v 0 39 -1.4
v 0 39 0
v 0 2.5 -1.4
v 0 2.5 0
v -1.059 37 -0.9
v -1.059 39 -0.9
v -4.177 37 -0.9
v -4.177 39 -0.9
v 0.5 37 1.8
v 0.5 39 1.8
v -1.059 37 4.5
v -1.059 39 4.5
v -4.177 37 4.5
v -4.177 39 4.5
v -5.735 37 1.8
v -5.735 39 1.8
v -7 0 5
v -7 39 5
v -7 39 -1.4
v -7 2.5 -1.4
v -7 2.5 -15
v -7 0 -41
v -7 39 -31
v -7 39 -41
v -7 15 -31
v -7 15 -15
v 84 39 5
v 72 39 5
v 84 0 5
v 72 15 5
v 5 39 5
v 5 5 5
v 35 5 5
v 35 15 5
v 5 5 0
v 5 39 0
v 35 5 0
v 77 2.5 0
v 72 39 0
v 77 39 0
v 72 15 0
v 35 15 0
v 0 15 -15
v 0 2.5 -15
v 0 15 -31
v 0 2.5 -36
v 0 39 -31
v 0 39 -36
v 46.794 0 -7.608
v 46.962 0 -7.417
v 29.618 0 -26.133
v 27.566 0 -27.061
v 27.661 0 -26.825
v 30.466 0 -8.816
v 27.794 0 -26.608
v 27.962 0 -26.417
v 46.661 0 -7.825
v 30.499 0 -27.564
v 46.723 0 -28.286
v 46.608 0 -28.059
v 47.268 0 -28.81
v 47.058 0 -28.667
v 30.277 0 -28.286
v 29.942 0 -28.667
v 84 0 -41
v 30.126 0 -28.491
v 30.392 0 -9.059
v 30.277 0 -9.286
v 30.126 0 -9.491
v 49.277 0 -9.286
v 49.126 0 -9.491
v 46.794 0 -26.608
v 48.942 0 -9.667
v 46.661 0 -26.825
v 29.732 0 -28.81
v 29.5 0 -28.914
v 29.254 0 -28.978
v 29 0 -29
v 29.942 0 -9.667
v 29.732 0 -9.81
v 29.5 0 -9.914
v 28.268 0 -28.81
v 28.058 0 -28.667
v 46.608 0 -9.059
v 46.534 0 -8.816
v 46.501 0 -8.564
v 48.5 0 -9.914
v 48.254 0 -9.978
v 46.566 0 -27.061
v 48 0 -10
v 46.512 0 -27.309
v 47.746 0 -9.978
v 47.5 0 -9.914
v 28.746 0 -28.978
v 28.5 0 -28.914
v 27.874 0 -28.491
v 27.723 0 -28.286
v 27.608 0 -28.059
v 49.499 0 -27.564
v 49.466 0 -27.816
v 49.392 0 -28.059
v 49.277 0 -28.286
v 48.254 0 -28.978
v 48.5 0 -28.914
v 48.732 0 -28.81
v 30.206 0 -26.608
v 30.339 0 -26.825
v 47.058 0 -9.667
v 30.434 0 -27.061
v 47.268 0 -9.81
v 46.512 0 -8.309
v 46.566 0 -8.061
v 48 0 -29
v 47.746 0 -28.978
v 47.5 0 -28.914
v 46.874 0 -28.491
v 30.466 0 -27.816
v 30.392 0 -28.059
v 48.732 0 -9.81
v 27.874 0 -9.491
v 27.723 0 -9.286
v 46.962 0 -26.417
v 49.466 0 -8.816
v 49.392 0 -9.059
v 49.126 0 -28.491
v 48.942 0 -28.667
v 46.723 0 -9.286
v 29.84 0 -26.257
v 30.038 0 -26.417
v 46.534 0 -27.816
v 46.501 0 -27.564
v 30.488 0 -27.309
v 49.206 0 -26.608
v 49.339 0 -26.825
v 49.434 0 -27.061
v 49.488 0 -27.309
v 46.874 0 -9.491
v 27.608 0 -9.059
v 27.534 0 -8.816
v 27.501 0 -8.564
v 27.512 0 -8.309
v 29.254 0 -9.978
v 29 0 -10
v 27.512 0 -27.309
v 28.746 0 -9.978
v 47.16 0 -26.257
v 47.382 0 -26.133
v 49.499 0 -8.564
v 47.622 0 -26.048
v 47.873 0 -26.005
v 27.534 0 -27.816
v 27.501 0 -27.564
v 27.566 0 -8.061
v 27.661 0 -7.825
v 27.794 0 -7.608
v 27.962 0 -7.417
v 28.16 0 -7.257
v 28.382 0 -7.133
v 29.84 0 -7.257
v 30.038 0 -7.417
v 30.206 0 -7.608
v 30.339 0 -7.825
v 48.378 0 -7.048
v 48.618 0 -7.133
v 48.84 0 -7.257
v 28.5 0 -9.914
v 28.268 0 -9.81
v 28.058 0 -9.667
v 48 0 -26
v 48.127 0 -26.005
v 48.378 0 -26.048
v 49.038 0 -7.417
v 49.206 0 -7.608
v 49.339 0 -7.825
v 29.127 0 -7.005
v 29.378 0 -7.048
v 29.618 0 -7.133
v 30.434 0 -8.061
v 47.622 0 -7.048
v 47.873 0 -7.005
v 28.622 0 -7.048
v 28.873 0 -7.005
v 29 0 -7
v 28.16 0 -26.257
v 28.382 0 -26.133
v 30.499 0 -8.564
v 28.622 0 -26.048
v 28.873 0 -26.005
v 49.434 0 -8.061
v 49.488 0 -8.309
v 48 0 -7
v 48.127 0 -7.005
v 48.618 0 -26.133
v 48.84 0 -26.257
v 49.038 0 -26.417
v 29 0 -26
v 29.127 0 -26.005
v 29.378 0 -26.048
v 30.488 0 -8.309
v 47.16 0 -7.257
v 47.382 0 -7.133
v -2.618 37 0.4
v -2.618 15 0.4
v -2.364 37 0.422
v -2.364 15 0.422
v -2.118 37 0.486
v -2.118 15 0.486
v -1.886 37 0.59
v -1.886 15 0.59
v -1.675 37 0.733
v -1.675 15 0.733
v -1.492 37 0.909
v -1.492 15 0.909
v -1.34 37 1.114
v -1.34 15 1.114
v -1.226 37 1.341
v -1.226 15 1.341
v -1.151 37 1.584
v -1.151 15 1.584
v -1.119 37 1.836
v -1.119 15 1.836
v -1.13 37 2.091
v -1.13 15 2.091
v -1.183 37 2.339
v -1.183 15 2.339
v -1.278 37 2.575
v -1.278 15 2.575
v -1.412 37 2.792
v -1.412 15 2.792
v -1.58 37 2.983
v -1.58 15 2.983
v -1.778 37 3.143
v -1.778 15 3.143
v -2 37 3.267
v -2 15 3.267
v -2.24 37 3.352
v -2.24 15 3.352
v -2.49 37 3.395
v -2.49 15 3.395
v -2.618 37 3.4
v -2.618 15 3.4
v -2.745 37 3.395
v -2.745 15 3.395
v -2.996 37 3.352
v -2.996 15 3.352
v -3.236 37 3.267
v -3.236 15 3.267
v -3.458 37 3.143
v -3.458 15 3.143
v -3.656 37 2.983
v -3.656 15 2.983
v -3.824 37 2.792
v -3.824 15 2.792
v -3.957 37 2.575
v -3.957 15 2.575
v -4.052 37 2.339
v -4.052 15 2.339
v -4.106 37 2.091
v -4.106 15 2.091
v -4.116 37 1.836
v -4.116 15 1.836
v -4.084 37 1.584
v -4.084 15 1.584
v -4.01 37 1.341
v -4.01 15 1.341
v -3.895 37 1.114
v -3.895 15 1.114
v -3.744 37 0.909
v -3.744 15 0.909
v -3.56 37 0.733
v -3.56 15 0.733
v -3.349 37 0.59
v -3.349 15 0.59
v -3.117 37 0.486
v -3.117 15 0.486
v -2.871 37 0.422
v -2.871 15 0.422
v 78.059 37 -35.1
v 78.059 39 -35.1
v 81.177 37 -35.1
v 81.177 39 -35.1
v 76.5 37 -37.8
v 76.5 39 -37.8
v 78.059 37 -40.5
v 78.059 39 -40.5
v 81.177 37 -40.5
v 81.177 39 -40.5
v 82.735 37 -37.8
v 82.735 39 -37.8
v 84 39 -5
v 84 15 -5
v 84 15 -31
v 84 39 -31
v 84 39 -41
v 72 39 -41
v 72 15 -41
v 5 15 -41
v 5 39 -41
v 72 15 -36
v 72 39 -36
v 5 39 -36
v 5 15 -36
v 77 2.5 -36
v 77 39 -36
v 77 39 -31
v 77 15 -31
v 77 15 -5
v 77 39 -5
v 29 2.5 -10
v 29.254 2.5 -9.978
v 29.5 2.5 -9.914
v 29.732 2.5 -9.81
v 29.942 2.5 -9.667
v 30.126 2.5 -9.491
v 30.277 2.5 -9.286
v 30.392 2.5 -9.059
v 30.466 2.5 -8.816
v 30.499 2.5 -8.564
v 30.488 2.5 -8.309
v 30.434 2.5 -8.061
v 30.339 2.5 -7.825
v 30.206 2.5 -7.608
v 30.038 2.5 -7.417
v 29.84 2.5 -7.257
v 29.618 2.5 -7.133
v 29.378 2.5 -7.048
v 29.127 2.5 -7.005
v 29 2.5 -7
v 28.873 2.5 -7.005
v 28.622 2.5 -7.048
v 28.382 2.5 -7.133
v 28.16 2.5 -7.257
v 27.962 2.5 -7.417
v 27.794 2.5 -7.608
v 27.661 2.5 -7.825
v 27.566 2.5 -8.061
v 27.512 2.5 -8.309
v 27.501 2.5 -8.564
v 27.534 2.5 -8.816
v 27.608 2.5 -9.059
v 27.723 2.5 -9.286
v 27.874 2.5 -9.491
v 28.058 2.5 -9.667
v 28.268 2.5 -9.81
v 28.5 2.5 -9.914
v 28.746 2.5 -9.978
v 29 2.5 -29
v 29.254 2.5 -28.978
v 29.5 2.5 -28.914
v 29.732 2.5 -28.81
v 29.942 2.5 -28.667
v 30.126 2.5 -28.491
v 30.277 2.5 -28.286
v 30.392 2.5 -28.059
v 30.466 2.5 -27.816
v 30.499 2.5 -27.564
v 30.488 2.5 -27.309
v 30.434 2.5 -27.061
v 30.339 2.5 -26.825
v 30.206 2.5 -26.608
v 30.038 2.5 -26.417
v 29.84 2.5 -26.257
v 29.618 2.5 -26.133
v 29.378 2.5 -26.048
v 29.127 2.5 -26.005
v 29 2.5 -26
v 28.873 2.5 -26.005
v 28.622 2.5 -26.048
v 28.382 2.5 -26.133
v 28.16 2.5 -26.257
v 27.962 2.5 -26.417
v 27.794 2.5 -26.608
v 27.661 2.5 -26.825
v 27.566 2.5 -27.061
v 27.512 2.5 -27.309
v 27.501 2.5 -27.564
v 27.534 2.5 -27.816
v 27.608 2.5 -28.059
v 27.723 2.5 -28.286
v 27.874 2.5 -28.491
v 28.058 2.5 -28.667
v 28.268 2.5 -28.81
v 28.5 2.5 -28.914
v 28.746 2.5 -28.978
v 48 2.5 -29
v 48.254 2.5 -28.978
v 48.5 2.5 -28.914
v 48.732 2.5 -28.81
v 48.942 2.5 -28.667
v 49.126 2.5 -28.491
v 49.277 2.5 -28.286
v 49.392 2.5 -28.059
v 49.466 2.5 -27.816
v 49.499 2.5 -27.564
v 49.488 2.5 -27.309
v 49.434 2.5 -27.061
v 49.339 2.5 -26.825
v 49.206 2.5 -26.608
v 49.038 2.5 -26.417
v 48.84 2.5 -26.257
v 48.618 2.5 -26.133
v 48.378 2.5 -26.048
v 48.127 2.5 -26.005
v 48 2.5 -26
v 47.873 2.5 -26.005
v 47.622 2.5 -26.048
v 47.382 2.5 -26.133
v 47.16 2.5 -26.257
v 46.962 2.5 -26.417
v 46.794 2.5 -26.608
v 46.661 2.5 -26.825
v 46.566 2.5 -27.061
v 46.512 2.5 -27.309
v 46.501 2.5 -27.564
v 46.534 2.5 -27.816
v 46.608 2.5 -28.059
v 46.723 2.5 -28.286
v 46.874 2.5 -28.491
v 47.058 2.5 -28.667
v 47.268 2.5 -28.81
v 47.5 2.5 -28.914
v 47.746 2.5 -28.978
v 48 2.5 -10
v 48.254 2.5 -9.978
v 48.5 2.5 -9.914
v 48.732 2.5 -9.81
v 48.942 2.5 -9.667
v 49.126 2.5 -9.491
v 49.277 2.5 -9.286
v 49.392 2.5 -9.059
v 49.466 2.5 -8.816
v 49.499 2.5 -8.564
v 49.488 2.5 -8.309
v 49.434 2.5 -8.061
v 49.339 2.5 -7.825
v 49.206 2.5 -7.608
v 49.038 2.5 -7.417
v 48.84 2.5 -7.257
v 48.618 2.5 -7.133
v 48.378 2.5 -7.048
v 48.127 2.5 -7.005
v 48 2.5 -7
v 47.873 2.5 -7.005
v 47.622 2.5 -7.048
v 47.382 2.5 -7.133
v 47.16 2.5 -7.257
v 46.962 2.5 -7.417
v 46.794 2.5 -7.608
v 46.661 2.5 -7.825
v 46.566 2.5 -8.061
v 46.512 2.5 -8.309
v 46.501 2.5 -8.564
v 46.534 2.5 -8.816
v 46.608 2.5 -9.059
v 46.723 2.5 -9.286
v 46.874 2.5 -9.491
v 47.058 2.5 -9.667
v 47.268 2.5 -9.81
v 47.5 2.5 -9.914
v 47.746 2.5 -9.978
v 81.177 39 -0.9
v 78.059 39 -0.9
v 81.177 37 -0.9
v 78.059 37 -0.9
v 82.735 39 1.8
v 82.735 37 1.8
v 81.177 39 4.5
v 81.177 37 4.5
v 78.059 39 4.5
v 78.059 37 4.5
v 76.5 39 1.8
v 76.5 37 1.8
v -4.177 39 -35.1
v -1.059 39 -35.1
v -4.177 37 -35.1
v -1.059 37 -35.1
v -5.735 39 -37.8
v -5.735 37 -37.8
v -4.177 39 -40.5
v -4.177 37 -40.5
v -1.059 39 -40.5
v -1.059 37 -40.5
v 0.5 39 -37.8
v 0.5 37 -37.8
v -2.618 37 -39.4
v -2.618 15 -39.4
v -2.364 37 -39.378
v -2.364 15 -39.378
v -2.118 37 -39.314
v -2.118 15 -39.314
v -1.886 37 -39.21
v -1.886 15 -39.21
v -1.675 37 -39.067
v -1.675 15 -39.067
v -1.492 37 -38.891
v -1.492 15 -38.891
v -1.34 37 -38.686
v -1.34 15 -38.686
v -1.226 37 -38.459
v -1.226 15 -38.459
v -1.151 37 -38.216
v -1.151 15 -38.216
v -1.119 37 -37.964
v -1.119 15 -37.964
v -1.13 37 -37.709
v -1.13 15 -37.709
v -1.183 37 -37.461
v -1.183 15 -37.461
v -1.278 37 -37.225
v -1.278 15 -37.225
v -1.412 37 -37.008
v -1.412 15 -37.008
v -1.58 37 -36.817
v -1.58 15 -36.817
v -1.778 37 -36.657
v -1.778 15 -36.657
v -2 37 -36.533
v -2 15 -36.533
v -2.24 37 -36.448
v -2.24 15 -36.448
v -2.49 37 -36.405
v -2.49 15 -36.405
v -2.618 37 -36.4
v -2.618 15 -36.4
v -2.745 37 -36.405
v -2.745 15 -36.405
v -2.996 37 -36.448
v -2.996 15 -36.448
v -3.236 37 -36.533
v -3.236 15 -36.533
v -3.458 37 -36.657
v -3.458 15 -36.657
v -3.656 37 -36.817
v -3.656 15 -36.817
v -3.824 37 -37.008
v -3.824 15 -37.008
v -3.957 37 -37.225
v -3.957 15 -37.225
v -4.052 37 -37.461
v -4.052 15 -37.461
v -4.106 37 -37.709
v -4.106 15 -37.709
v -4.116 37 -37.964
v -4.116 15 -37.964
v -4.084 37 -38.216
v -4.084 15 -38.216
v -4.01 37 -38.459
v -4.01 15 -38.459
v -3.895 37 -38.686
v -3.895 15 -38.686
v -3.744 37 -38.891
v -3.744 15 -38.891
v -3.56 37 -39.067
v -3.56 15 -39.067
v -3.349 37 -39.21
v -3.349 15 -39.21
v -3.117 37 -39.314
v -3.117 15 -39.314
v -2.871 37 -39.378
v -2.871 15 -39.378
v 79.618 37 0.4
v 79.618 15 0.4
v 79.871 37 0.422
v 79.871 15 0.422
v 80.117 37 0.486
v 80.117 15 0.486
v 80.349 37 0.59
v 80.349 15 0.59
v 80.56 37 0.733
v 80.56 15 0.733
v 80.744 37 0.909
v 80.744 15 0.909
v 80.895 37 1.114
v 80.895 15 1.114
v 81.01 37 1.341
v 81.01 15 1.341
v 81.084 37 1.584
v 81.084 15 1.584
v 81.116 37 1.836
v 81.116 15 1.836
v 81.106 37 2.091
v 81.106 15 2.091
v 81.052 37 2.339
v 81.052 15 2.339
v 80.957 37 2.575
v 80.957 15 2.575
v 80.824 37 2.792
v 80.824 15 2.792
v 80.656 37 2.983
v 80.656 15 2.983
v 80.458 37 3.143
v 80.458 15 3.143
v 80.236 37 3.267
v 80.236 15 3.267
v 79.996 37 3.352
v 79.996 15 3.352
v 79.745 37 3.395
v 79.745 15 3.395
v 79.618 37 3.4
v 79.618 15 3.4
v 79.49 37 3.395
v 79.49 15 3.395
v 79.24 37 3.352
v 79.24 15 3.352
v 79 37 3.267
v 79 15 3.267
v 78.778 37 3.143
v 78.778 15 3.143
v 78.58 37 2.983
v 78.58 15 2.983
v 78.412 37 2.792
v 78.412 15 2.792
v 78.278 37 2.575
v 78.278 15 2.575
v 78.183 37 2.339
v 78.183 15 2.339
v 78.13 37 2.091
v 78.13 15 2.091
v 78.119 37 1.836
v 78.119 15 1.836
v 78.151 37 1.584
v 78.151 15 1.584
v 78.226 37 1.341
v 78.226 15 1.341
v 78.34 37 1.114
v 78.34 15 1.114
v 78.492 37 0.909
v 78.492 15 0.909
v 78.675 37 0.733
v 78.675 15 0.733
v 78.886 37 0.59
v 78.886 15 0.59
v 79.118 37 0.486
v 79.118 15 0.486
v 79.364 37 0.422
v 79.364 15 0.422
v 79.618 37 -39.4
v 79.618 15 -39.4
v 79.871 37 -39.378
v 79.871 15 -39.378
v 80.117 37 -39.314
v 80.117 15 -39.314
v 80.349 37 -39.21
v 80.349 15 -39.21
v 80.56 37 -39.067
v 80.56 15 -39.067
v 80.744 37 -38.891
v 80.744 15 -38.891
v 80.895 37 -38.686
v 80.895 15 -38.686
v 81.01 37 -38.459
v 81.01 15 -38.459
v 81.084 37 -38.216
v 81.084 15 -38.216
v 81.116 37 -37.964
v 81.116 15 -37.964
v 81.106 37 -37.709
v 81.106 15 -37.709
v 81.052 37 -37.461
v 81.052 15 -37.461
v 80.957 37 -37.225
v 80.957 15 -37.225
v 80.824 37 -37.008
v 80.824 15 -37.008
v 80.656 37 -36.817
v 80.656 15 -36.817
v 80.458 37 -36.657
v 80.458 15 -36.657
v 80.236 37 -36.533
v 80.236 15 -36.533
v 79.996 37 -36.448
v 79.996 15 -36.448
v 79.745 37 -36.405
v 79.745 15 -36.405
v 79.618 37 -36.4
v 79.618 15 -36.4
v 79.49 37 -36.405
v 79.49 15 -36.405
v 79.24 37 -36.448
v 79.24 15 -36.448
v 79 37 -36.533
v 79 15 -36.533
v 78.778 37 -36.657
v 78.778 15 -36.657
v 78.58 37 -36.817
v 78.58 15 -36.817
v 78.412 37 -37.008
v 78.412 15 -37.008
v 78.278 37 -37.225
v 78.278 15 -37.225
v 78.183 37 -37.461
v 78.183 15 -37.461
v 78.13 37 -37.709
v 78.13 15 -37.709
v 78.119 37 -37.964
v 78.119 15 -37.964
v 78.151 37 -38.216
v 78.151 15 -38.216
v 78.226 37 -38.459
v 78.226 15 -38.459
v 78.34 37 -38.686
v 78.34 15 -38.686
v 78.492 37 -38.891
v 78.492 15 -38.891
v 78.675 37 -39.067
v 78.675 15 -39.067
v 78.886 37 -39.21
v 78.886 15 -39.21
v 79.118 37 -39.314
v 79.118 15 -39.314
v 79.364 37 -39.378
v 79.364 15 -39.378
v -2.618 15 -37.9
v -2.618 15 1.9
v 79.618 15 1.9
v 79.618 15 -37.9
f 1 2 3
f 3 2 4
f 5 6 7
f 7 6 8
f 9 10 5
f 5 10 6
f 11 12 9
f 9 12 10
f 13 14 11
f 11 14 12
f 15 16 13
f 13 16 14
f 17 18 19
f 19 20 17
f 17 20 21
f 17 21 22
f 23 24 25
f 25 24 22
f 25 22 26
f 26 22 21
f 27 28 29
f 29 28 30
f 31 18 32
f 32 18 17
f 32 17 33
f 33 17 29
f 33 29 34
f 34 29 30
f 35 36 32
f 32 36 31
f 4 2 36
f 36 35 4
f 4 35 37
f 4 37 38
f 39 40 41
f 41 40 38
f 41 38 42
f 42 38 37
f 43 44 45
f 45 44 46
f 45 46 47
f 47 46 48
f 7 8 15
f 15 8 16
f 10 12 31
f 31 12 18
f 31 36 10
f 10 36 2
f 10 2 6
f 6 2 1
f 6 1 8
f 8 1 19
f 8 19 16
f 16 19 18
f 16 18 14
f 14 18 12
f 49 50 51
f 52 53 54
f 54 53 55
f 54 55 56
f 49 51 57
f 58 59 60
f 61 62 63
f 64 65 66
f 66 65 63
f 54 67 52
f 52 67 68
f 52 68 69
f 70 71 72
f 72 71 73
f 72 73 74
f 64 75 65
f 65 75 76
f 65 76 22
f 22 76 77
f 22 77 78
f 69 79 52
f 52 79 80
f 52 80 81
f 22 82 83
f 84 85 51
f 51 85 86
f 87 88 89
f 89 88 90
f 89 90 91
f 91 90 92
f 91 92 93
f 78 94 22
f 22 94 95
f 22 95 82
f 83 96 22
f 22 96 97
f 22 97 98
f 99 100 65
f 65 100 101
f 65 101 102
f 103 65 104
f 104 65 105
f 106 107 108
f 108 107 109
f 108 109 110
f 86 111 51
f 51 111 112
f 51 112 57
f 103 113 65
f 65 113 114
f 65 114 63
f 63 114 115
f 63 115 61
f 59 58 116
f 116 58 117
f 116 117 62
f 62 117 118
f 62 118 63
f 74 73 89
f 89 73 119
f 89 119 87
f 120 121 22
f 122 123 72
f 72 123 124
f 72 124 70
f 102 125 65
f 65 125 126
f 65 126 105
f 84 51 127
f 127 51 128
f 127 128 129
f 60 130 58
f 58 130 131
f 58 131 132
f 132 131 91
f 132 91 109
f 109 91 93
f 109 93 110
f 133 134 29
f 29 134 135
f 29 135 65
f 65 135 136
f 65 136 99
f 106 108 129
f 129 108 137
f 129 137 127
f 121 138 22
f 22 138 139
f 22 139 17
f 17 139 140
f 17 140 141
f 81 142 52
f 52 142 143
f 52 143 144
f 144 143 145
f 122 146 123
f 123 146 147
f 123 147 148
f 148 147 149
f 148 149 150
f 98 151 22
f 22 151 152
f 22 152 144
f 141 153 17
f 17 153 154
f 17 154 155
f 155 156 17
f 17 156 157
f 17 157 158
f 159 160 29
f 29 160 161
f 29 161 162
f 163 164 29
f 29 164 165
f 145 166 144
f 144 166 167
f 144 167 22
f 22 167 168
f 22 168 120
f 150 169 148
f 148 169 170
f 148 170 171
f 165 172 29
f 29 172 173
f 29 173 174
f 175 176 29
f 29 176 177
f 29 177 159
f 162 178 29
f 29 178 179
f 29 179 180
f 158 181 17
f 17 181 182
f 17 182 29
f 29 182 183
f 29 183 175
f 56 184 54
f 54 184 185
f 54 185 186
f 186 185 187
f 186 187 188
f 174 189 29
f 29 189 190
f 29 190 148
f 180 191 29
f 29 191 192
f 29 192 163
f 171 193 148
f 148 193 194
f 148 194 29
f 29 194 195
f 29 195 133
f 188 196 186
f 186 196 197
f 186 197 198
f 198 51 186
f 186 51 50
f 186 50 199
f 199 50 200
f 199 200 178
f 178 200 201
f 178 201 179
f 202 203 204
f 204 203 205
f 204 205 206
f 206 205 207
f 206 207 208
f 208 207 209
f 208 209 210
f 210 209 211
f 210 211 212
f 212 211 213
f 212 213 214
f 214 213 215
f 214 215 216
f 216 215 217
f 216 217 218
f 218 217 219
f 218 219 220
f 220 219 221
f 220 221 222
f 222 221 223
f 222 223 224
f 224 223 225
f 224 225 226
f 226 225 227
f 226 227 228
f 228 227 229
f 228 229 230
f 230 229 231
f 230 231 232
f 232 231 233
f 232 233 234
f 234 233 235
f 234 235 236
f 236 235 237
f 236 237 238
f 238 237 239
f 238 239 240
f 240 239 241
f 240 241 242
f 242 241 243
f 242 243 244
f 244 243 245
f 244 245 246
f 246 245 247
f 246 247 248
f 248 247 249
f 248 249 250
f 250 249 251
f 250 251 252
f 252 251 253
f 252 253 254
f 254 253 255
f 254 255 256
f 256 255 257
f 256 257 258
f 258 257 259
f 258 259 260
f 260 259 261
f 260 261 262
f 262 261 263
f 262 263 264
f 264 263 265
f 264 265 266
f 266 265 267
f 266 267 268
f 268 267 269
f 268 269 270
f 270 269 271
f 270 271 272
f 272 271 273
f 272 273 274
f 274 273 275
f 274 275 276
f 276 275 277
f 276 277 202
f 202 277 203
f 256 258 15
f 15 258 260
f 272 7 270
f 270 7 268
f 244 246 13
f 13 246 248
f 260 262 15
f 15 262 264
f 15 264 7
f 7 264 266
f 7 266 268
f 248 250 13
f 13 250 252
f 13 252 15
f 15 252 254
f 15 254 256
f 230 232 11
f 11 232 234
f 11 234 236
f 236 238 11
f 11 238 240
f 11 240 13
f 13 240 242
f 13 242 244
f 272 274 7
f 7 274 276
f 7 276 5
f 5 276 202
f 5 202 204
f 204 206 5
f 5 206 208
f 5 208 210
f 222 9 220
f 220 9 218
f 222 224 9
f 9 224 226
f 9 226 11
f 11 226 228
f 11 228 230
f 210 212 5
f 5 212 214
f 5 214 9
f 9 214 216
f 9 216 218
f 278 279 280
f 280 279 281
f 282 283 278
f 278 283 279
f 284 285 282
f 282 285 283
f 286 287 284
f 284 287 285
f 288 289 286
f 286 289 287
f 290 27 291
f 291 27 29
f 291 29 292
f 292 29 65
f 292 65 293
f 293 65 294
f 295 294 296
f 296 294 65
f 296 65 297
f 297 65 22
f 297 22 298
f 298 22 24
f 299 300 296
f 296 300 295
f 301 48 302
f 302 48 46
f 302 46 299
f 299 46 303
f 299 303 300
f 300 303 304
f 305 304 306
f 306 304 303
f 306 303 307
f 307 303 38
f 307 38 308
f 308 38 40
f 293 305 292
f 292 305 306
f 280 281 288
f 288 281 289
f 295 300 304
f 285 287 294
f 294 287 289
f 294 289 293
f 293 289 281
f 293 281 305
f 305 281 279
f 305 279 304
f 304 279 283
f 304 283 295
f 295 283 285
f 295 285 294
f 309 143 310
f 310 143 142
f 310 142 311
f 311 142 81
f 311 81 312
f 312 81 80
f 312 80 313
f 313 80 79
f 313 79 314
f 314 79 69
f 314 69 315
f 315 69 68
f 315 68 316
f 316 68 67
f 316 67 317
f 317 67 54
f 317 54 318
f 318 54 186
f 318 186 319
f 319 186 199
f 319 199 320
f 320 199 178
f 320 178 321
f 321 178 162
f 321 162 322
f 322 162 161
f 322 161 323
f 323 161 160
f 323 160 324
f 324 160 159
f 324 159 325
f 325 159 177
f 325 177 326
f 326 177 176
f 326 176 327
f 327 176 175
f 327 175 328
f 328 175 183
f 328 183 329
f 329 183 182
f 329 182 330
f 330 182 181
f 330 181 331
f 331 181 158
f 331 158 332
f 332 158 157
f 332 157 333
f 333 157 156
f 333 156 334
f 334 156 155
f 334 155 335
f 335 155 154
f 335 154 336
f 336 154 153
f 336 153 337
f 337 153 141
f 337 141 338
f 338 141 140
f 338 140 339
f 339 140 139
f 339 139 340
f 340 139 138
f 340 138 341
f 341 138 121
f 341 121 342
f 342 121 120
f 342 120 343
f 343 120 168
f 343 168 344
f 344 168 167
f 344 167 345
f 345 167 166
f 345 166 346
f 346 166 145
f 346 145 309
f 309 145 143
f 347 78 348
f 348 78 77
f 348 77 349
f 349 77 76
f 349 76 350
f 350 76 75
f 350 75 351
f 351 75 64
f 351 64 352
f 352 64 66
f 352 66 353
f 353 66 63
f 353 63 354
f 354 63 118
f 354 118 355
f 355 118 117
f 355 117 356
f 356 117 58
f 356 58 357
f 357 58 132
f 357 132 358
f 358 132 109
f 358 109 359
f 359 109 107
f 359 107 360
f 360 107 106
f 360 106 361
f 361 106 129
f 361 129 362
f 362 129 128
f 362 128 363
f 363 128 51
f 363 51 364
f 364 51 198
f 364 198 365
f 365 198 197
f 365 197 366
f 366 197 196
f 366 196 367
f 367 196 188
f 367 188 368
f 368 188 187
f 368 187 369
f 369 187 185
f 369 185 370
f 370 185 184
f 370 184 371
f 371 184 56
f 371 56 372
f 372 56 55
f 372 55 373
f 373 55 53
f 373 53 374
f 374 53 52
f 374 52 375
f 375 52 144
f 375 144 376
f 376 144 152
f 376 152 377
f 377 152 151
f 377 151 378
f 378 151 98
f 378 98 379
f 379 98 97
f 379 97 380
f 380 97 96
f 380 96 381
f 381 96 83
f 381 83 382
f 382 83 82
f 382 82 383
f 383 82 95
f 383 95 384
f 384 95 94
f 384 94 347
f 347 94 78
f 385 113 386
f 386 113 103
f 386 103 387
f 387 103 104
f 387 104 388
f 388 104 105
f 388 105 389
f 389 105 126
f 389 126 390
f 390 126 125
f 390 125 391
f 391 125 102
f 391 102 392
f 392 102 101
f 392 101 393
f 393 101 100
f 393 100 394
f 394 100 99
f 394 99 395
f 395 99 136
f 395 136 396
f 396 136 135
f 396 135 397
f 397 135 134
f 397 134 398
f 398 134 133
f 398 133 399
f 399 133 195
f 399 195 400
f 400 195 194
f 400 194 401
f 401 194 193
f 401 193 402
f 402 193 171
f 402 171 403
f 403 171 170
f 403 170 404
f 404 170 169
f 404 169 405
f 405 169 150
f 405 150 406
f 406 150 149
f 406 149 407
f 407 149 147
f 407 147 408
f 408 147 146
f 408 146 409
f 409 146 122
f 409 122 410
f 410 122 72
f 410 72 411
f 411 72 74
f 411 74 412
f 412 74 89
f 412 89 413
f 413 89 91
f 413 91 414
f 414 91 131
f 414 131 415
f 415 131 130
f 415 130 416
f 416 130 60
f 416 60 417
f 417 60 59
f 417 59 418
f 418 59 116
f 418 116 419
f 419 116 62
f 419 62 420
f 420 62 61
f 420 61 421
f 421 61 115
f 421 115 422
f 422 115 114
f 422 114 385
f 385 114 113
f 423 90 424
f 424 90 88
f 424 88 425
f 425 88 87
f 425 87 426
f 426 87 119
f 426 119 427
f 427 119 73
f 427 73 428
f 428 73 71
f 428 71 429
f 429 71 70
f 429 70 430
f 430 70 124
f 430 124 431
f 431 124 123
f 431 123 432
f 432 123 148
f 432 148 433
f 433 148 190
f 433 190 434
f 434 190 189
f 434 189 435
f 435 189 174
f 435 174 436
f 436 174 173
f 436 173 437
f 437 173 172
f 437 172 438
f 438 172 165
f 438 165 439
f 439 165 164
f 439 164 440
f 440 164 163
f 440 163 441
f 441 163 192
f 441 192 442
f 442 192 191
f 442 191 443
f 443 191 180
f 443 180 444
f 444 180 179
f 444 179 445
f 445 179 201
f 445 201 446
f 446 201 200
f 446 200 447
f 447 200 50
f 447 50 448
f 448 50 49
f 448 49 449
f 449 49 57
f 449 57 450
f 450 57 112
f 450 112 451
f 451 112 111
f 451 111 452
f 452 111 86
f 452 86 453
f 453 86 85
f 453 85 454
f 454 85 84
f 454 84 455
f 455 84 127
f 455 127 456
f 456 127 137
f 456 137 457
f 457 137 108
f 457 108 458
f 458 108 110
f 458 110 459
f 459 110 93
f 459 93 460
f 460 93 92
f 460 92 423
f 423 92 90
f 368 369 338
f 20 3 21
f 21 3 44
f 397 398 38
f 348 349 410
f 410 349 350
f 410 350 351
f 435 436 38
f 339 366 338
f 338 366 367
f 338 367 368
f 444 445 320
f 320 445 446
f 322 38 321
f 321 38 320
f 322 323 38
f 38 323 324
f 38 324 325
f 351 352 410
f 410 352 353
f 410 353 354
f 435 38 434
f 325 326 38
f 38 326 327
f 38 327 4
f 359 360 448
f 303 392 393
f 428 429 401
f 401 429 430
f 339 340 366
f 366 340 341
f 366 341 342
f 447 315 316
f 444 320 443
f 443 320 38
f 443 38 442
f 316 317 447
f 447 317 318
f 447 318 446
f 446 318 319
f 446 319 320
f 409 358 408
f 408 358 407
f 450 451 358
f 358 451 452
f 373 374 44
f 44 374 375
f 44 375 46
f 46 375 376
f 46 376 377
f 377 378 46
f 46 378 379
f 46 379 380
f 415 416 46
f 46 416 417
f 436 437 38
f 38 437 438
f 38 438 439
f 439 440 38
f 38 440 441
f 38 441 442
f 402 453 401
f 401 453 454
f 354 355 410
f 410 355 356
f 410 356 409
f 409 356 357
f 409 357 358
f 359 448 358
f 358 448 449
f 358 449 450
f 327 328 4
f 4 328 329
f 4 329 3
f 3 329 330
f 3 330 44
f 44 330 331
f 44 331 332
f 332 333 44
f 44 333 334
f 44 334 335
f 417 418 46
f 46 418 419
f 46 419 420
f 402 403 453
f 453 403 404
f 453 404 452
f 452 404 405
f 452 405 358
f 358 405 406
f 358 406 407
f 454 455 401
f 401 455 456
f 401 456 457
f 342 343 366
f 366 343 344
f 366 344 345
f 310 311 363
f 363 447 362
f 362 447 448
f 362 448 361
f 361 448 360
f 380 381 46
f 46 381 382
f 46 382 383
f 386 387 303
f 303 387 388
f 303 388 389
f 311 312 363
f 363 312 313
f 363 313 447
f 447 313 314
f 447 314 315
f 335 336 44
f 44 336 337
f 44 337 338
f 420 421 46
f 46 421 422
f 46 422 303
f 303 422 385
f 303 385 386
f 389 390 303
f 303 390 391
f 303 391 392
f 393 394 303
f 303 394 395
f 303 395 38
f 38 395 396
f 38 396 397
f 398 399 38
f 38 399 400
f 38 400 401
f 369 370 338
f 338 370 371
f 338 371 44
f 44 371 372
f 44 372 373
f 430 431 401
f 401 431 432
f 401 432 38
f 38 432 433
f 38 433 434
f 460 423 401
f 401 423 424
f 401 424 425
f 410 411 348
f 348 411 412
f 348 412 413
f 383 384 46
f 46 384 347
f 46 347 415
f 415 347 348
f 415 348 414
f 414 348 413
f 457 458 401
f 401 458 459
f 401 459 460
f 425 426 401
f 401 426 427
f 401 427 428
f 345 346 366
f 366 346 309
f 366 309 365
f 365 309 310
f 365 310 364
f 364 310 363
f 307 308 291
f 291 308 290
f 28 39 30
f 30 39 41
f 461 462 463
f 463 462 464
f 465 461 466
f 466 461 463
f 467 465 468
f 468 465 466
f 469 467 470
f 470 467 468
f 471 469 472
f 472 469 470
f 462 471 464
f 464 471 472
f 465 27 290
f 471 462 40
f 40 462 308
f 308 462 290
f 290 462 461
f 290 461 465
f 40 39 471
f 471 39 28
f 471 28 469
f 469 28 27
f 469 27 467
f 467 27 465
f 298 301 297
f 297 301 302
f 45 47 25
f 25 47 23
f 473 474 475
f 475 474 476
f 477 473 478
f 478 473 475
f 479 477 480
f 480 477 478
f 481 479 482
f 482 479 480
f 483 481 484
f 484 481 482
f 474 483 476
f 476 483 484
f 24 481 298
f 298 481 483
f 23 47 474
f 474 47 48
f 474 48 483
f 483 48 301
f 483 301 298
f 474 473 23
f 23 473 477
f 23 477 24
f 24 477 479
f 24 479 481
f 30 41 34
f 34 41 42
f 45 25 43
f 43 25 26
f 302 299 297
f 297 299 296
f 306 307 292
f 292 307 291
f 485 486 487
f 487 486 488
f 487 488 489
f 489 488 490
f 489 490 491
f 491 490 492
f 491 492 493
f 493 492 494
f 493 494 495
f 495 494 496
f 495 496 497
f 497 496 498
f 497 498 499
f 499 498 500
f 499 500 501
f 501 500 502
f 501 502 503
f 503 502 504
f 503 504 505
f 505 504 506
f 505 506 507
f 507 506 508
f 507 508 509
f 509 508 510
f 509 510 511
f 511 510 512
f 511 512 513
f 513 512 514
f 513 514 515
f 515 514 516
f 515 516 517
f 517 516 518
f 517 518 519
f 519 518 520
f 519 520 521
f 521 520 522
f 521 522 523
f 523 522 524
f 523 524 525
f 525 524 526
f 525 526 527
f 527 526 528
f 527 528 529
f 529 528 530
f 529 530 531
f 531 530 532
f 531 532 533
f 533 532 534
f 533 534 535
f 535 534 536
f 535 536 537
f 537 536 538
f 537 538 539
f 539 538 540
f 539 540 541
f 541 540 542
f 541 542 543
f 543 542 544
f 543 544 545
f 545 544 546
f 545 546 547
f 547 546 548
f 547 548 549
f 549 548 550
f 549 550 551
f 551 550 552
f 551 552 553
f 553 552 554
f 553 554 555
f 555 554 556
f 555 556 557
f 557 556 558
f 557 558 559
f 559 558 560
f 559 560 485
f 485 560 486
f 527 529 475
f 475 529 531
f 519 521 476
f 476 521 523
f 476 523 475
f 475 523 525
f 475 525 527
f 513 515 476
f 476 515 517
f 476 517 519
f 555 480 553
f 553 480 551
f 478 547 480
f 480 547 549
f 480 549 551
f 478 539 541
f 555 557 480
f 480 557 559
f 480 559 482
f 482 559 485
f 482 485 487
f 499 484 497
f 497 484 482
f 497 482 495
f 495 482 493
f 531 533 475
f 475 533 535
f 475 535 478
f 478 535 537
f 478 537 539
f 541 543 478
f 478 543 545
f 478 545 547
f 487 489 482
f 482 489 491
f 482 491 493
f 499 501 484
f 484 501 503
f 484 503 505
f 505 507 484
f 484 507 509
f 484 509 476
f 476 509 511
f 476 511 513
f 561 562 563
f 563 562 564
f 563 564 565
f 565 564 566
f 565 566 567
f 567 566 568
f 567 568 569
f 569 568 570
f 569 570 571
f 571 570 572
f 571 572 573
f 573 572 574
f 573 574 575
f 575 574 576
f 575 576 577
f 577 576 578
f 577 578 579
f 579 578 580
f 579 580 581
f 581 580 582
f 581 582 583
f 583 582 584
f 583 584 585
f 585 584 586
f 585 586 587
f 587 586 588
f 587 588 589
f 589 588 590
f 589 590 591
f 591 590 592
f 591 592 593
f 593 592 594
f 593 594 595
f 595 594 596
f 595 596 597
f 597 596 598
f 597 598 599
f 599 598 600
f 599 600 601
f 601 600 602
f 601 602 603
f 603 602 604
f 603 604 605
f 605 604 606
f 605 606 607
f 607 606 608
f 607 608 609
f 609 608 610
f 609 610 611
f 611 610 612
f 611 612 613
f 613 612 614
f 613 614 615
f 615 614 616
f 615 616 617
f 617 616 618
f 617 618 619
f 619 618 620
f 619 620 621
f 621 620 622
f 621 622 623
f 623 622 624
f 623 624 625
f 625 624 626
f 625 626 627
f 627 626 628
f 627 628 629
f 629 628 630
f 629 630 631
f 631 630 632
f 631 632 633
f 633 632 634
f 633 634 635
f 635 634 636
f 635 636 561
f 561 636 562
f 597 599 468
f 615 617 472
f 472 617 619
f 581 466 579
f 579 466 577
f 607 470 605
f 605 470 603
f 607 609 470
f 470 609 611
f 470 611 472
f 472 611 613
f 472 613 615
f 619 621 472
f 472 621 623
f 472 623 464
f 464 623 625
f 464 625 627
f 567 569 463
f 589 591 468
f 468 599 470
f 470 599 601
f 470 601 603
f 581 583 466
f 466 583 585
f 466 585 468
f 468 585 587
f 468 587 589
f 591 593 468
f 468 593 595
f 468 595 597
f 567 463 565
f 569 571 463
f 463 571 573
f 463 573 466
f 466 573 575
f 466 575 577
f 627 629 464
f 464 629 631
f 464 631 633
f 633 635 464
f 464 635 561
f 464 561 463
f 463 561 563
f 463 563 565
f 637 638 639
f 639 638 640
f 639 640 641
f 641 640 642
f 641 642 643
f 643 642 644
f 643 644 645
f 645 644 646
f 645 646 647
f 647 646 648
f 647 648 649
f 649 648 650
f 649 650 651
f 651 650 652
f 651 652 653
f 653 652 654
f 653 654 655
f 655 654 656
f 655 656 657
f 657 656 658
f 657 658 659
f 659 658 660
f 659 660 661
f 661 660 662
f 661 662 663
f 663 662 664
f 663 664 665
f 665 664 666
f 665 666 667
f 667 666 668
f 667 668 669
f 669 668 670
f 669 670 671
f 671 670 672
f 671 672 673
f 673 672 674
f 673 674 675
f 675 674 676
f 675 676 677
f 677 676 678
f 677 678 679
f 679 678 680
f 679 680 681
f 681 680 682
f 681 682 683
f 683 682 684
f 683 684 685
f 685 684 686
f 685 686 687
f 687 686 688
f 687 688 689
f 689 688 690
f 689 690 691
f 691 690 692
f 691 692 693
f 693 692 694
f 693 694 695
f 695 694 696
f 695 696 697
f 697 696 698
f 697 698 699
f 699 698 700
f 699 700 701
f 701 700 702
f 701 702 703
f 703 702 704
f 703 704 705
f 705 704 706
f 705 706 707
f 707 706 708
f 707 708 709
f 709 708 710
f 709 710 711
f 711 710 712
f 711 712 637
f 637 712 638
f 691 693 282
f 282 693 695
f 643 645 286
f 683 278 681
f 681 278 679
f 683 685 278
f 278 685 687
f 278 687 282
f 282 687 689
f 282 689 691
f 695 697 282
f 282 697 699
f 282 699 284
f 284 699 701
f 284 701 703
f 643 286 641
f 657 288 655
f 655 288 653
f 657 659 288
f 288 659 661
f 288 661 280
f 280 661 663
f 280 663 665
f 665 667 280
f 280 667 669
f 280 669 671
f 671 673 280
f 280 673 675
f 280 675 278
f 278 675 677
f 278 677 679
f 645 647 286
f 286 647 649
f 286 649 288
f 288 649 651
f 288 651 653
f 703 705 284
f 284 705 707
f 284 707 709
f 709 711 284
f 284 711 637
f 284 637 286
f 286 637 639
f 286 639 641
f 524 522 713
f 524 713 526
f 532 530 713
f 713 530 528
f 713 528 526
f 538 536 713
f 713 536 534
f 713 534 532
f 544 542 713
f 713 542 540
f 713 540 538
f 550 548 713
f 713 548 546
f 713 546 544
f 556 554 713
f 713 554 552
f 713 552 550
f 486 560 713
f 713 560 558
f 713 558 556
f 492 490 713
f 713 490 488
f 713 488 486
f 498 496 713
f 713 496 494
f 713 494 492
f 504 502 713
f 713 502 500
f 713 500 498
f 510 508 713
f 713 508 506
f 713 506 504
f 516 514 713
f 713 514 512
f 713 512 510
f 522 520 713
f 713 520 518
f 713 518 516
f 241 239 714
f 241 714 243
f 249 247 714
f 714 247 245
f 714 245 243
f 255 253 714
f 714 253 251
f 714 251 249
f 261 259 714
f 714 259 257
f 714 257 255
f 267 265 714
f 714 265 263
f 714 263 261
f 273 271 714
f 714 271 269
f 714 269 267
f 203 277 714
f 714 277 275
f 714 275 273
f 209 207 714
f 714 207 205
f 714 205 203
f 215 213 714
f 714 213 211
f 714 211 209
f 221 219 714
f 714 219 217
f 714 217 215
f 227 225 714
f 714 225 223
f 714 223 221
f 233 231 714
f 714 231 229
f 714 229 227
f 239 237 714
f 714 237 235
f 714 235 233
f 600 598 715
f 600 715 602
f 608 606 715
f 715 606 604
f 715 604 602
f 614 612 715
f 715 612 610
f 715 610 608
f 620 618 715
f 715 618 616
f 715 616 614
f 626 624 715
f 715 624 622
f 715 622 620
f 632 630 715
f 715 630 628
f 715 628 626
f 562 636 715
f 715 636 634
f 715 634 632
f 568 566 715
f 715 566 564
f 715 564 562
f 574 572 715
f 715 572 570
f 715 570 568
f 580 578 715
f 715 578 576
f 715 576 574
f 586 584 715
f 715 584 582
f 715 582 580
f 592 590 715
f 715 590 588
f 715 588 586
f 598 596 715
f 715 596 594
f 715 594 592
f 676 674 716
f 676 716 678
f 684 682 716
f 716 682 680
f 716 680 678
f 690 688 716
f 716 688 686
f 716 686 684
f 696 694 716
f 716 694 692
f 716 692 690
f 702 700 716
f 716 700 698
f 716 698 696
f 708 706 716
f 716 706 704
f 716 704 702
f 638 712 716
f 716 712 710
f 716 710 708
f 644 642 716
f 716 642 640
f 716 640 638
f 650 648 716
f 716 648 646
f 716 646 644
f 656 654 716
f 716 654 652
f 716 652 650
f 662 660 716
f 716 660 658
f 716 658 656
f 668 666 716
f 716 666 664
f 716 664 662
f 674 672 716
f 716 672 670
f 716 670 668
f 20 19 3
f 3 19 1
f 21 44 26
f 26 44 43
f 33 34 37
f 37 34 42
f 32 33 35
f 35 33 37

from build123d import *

# Parameters (mm, degrees)
BOSS_EXTRUDE7_DEPTH   = 39
BOSS_EXTRUDE7_2_DEPTH = 39
BOSS_EXTRUDE7_3_DEPTH = 39
BOSS_EXTRUDE7_4_DEPTH = 39
SKETCH1_11_R          = 1.5
BOSS_EXTRUDE8_DEPTH   = 2.5
SKETCH1_12_W          = 67
SKETCH1_12_H          = 5
SKETCH1_12_W_2        = 7
SKETCH1_12_H_2        = 26
BOSS_EXTRUDE9_DEPTH   = 15
SKETCH1_19_R          = 1.5
BOSS_EXTRUDE12_DEPTH  = 37
SKETCH1_20_R          = 1.5
BOSS_EXTRUDE13_DEPTH  = 15
SKETCH4_W             = 13.6
SKETCH4_H             = 36.5
CUT_EXTRUDE2_DEPTH    = 102.281785134
SKETCH5_W             = 30
SKETCH5_H             = 10
CUT_EXTRUDE4_DEPTH    = 15


with BuildPart() as part:
    # Sketch1 → Boss-Extrude7 (new body)
    with BuildSketch(Plane(origin=(0, 0, 0), x_dir=(1, 0, 0), z_dir=(0, 1, 0))):
        Polygon((5, 0), (0, 0), (0, 5), (-7, 5), (-7, -5), (5, -5), align=None)
        Polygon((-5.735382907, -1.8), (-4.17653718, 0.9), (-1.058845727, 0.9), (0.5, -1.8), (-1.058845727, -4.5), (-4.17653718, -4.5), align=None, mode=Mode.SUBTRACT)
    extrude(amount=BOSS_EXTRUDE7_DEPTH)



with BuildPart() as body_2:
    # Sketch1 → Boss-Extrude7 2 (new body)
    with BuildSketch(Plane(origin=(0, 0, 0), x_dir=(1, 0, 0), z_dir=(0, 1, 0))):
        Polygon((77, 0), (72, 0), (72, -5), (84, -5), (84, 5), (77, 5), align=None)
        Polygon((81.17653718, 0.9), (82.735382907, -1.8), (81.17653718, -4.5), (78.058845727, -4.5), (76.5, -1.8), (78.058845727, 0.9), align=None, mode=Mode.SUBTRACT)
    extrude(amount=BOSS_EXTRUDE7_2_DEPTH)


with BuildPart() as body_3:
    # Sketch1 → Boss-Extrude7 3 (new body)
    with BuildSketch(Plane(origin=(0, 0, 0), x_dir=(1, 0, 0), z_dir=(0, 1, 0))):
        Polygon((-7, 31), (0, 31), (0, 36), (5, 36), (5, 41), (-7, 41), align=None)
        Polygon((0.5, 37.8), (-1.058845727, 35.1), (-4.17653718, 35.1), (-5.735382907, 37.8), (-4.17653718, 40.5), (-1.058845727, 40.5), align=None, mode=Mode.SUBTRACT)
    extrude(amount=BOSS_EXTRUDE7_3_DEPTH)


with BuildPart() as body_4:
    # Sketch1 → Boss-Extrude7 4 (new body)
    with BuildSketch(Plane(origin=(0, 0, 0), x_dir=(1, 0, 0), z_dir=(0, 1, 0))):
        Polygon((77, 36), (77, 31), (84, 31), (84, 41), (72, 41), (72, 36), align=None)
        Polygon((82.735382907, 37.8), (81.17653718, 35.1), (78.058845727, 35.1), (76.5, 37.8), (78.058845727, 40.5), (81.17653718, 40.5), align=None, mode=Mode.SUBTRACT)
    extrude(amount=BOSS_EXTRUDE7_4_DEPTH)


    add(body_2.part)  # Boss-Extrude8 merges body 2

    add(body_3.part)  # Boss-Extrude8 merges body 3
    # Sketch1<11> → Boss-Extrude8 (add)
    with BuildSketch(Plane(origin=(0, 0, 0), x_dir=(1, 0, 0), z_dir=(0, 1, 0))):
        Polygon((0, 5), (0, 0), (5, 0), (72, 0), (77, 0), (77, 5), (77, 31), (77, 36), (72, 36), (5, 36), (0, 36), (0, 31), align=None)
        with Locations((29, 8.5)):
            Circle(SKETCH1_11_R, mode=Mode.SUBTRACT)
        with Locations((48, 8.5)):
            Circle(SKETCH1_11_R, mode=Mode.SUBTRACT)
        with Locations((29, 27.5)):
            Circle(SKETCH1_11_R, mode=Mode.SUBTRACT)
        with Locations((48, 27.5)):
            Circle(SKETCH1_11_R, mode=Mode.SUBTRACT)
    extrude(amount=BOSS_EXTRUDE8_DEPTH)

    # Sketch1<12> → Boss-Extrude9 (add)
    with BuildSketch(Plane(origin=(0, 0, 0), x_dir=(1, 0, 0), z_dir=(0, 1, 0))):
        with Locations((38.5, -2.5)):
            Rectangle(SKETCH1_12_W, SKETCH1_12_H)
        with Locations((-3.5, 18)):
            Rectangle(SKETCH1_12_W_2, SKETCH1_12_H_2)
        with Locations((80.5, 18)):
            Rectangle(SKETCH1_12_W_2, SKETCH1_12_H_2)
        with Locations((38.5, 38.5)):
            Rectangle(SKETCH1_12_W, SKETCH1_12_H)
    extrude(amount=BOSS_EXTRUDE9_DEPTH)


with BuildPart() as part_1:
    add(part.part)

    add(body_4.part)  # Boss-Extrude12 merges body 4
    # Sketch1<19> → Boss-Extrude12 (add)
    # profile 1 of 4: a face of its own
    with BuildSketch(Plane(origin=(0, 0, 0), x_dir=(1, 0, 0), z_dir=(0, 1, 0))):
        Polygon((-1.058845727, 0.9), (-4.17653718, 0.9), (-5.735382907, -1.8), (-4.17653718, -4.5), (-1.058845727, -4.5), (0.5, -1.8), align=None)
        with Locations((-2.617691454, -1.9)):
            Circle(SKETCH1_19_R, mode=Mode.SUBTRACT)
    # profile 2 of 4: a face of its own
    with BuildSketch(Plane(origin=(0, 0, 0), x_dir=(1, 0, 0), z_dir=(0, 1, 0))):
        Polygon((-4.17653718, 35.1), (-1.058845727, 35.1), (0.5, 37.8), (-1.058845727, 40.5), (-4.17653718, 40.5), (-5.735382907, 37.8), align=None)
        with Locations((-2.617691454, 37.9)):
            Circle(SKETCH1_19_R, mode=Mode.SUBTRACT)
    # profile 3 of 4: a face of its own
    with BuildSketch(Plane(origin=(0, 0, 0), x_dir=(1, 0, 0), z_dir=(0, 1, 0))):
        Polygon((81.17653718, -4.5), (82.735382907, -1.8), (81.17653718, 0.9), (78.058845727, 0.9), (76.5, -1.8), (78.058845727, -4.5), align=None)
        with Locations((79.617691454, -1.9)):
            Circle(SKETCH1_19_R, mode=Mode.SUBTRACT)
    # profile 4 of 4: a face of its own
    with BuildSketch(Plane(origin=(0, 0, 0), x_dir=(1, 0, 0), z_dir=(0, 1, 0))):
        Polygon((78.058845727, 35.1), (81.17653718, 35.1), (82.735382907, 37.8), (81.17653718, 40.5), (78.058845727, 40.5), (76.5, 37.8), align=None)
        with Locations((79.617691454, 37.9)):
            Circle(SKETCH1_19_R, mode=Mode.SUBTRACT)
    extrude(amount=BOSS_EXTRUDE12_DEPTH)

    # Sketch1<20> → Boss-Extrude13 (add)
    with BuildSketch(Plane(origin=(0, 0, 0), x_dir=(1, 0, 0), z_dir=(0, 1, 0))):
        with Locations((-2.617691454, 37.9)):
            Circle(SKETCH1_20_R)
        with Locations((-2.617691454, -1.9)):
            Circle(SKETCH1_20_R)
        with Locations((79.617691454, -1.9)):
            Circle(SKETCH1_20_R)
        with Locations((79.617691454, 37.9)):
            Circle(SKETCH1_20_R)
    extrude(amount=BOSS_EXTRUDE13_DEPTH)

    # Sketch4 → Cut-Extrude2 (cut, through all)
    with BuildSketch(Plane(origin=(0, 0, 0), x_dir=(0, 0, -1), z_dir=(1, 0, 0))):
        with Locations((8.2, 20.75)):
            Rectangle(SKETCH4_W, SKETCH4_H)
    extrude(amount=-CUT_EXTRUDE2_DEPTH, mode=Mode.SUBTRACT)

    # Sketch5 → Cut-Extrude4 (cut)
    with BuildSketch(Plane.XY.offset(5)):
        with Locations((20, 10)):
            Rectangle(SKETCH5_W, SKETCH5_H)
    extrude(amount=-CUT_EXTRUDE4_DEPTH, mode=Mode.SUBTRACT)


solid = part_1.part
